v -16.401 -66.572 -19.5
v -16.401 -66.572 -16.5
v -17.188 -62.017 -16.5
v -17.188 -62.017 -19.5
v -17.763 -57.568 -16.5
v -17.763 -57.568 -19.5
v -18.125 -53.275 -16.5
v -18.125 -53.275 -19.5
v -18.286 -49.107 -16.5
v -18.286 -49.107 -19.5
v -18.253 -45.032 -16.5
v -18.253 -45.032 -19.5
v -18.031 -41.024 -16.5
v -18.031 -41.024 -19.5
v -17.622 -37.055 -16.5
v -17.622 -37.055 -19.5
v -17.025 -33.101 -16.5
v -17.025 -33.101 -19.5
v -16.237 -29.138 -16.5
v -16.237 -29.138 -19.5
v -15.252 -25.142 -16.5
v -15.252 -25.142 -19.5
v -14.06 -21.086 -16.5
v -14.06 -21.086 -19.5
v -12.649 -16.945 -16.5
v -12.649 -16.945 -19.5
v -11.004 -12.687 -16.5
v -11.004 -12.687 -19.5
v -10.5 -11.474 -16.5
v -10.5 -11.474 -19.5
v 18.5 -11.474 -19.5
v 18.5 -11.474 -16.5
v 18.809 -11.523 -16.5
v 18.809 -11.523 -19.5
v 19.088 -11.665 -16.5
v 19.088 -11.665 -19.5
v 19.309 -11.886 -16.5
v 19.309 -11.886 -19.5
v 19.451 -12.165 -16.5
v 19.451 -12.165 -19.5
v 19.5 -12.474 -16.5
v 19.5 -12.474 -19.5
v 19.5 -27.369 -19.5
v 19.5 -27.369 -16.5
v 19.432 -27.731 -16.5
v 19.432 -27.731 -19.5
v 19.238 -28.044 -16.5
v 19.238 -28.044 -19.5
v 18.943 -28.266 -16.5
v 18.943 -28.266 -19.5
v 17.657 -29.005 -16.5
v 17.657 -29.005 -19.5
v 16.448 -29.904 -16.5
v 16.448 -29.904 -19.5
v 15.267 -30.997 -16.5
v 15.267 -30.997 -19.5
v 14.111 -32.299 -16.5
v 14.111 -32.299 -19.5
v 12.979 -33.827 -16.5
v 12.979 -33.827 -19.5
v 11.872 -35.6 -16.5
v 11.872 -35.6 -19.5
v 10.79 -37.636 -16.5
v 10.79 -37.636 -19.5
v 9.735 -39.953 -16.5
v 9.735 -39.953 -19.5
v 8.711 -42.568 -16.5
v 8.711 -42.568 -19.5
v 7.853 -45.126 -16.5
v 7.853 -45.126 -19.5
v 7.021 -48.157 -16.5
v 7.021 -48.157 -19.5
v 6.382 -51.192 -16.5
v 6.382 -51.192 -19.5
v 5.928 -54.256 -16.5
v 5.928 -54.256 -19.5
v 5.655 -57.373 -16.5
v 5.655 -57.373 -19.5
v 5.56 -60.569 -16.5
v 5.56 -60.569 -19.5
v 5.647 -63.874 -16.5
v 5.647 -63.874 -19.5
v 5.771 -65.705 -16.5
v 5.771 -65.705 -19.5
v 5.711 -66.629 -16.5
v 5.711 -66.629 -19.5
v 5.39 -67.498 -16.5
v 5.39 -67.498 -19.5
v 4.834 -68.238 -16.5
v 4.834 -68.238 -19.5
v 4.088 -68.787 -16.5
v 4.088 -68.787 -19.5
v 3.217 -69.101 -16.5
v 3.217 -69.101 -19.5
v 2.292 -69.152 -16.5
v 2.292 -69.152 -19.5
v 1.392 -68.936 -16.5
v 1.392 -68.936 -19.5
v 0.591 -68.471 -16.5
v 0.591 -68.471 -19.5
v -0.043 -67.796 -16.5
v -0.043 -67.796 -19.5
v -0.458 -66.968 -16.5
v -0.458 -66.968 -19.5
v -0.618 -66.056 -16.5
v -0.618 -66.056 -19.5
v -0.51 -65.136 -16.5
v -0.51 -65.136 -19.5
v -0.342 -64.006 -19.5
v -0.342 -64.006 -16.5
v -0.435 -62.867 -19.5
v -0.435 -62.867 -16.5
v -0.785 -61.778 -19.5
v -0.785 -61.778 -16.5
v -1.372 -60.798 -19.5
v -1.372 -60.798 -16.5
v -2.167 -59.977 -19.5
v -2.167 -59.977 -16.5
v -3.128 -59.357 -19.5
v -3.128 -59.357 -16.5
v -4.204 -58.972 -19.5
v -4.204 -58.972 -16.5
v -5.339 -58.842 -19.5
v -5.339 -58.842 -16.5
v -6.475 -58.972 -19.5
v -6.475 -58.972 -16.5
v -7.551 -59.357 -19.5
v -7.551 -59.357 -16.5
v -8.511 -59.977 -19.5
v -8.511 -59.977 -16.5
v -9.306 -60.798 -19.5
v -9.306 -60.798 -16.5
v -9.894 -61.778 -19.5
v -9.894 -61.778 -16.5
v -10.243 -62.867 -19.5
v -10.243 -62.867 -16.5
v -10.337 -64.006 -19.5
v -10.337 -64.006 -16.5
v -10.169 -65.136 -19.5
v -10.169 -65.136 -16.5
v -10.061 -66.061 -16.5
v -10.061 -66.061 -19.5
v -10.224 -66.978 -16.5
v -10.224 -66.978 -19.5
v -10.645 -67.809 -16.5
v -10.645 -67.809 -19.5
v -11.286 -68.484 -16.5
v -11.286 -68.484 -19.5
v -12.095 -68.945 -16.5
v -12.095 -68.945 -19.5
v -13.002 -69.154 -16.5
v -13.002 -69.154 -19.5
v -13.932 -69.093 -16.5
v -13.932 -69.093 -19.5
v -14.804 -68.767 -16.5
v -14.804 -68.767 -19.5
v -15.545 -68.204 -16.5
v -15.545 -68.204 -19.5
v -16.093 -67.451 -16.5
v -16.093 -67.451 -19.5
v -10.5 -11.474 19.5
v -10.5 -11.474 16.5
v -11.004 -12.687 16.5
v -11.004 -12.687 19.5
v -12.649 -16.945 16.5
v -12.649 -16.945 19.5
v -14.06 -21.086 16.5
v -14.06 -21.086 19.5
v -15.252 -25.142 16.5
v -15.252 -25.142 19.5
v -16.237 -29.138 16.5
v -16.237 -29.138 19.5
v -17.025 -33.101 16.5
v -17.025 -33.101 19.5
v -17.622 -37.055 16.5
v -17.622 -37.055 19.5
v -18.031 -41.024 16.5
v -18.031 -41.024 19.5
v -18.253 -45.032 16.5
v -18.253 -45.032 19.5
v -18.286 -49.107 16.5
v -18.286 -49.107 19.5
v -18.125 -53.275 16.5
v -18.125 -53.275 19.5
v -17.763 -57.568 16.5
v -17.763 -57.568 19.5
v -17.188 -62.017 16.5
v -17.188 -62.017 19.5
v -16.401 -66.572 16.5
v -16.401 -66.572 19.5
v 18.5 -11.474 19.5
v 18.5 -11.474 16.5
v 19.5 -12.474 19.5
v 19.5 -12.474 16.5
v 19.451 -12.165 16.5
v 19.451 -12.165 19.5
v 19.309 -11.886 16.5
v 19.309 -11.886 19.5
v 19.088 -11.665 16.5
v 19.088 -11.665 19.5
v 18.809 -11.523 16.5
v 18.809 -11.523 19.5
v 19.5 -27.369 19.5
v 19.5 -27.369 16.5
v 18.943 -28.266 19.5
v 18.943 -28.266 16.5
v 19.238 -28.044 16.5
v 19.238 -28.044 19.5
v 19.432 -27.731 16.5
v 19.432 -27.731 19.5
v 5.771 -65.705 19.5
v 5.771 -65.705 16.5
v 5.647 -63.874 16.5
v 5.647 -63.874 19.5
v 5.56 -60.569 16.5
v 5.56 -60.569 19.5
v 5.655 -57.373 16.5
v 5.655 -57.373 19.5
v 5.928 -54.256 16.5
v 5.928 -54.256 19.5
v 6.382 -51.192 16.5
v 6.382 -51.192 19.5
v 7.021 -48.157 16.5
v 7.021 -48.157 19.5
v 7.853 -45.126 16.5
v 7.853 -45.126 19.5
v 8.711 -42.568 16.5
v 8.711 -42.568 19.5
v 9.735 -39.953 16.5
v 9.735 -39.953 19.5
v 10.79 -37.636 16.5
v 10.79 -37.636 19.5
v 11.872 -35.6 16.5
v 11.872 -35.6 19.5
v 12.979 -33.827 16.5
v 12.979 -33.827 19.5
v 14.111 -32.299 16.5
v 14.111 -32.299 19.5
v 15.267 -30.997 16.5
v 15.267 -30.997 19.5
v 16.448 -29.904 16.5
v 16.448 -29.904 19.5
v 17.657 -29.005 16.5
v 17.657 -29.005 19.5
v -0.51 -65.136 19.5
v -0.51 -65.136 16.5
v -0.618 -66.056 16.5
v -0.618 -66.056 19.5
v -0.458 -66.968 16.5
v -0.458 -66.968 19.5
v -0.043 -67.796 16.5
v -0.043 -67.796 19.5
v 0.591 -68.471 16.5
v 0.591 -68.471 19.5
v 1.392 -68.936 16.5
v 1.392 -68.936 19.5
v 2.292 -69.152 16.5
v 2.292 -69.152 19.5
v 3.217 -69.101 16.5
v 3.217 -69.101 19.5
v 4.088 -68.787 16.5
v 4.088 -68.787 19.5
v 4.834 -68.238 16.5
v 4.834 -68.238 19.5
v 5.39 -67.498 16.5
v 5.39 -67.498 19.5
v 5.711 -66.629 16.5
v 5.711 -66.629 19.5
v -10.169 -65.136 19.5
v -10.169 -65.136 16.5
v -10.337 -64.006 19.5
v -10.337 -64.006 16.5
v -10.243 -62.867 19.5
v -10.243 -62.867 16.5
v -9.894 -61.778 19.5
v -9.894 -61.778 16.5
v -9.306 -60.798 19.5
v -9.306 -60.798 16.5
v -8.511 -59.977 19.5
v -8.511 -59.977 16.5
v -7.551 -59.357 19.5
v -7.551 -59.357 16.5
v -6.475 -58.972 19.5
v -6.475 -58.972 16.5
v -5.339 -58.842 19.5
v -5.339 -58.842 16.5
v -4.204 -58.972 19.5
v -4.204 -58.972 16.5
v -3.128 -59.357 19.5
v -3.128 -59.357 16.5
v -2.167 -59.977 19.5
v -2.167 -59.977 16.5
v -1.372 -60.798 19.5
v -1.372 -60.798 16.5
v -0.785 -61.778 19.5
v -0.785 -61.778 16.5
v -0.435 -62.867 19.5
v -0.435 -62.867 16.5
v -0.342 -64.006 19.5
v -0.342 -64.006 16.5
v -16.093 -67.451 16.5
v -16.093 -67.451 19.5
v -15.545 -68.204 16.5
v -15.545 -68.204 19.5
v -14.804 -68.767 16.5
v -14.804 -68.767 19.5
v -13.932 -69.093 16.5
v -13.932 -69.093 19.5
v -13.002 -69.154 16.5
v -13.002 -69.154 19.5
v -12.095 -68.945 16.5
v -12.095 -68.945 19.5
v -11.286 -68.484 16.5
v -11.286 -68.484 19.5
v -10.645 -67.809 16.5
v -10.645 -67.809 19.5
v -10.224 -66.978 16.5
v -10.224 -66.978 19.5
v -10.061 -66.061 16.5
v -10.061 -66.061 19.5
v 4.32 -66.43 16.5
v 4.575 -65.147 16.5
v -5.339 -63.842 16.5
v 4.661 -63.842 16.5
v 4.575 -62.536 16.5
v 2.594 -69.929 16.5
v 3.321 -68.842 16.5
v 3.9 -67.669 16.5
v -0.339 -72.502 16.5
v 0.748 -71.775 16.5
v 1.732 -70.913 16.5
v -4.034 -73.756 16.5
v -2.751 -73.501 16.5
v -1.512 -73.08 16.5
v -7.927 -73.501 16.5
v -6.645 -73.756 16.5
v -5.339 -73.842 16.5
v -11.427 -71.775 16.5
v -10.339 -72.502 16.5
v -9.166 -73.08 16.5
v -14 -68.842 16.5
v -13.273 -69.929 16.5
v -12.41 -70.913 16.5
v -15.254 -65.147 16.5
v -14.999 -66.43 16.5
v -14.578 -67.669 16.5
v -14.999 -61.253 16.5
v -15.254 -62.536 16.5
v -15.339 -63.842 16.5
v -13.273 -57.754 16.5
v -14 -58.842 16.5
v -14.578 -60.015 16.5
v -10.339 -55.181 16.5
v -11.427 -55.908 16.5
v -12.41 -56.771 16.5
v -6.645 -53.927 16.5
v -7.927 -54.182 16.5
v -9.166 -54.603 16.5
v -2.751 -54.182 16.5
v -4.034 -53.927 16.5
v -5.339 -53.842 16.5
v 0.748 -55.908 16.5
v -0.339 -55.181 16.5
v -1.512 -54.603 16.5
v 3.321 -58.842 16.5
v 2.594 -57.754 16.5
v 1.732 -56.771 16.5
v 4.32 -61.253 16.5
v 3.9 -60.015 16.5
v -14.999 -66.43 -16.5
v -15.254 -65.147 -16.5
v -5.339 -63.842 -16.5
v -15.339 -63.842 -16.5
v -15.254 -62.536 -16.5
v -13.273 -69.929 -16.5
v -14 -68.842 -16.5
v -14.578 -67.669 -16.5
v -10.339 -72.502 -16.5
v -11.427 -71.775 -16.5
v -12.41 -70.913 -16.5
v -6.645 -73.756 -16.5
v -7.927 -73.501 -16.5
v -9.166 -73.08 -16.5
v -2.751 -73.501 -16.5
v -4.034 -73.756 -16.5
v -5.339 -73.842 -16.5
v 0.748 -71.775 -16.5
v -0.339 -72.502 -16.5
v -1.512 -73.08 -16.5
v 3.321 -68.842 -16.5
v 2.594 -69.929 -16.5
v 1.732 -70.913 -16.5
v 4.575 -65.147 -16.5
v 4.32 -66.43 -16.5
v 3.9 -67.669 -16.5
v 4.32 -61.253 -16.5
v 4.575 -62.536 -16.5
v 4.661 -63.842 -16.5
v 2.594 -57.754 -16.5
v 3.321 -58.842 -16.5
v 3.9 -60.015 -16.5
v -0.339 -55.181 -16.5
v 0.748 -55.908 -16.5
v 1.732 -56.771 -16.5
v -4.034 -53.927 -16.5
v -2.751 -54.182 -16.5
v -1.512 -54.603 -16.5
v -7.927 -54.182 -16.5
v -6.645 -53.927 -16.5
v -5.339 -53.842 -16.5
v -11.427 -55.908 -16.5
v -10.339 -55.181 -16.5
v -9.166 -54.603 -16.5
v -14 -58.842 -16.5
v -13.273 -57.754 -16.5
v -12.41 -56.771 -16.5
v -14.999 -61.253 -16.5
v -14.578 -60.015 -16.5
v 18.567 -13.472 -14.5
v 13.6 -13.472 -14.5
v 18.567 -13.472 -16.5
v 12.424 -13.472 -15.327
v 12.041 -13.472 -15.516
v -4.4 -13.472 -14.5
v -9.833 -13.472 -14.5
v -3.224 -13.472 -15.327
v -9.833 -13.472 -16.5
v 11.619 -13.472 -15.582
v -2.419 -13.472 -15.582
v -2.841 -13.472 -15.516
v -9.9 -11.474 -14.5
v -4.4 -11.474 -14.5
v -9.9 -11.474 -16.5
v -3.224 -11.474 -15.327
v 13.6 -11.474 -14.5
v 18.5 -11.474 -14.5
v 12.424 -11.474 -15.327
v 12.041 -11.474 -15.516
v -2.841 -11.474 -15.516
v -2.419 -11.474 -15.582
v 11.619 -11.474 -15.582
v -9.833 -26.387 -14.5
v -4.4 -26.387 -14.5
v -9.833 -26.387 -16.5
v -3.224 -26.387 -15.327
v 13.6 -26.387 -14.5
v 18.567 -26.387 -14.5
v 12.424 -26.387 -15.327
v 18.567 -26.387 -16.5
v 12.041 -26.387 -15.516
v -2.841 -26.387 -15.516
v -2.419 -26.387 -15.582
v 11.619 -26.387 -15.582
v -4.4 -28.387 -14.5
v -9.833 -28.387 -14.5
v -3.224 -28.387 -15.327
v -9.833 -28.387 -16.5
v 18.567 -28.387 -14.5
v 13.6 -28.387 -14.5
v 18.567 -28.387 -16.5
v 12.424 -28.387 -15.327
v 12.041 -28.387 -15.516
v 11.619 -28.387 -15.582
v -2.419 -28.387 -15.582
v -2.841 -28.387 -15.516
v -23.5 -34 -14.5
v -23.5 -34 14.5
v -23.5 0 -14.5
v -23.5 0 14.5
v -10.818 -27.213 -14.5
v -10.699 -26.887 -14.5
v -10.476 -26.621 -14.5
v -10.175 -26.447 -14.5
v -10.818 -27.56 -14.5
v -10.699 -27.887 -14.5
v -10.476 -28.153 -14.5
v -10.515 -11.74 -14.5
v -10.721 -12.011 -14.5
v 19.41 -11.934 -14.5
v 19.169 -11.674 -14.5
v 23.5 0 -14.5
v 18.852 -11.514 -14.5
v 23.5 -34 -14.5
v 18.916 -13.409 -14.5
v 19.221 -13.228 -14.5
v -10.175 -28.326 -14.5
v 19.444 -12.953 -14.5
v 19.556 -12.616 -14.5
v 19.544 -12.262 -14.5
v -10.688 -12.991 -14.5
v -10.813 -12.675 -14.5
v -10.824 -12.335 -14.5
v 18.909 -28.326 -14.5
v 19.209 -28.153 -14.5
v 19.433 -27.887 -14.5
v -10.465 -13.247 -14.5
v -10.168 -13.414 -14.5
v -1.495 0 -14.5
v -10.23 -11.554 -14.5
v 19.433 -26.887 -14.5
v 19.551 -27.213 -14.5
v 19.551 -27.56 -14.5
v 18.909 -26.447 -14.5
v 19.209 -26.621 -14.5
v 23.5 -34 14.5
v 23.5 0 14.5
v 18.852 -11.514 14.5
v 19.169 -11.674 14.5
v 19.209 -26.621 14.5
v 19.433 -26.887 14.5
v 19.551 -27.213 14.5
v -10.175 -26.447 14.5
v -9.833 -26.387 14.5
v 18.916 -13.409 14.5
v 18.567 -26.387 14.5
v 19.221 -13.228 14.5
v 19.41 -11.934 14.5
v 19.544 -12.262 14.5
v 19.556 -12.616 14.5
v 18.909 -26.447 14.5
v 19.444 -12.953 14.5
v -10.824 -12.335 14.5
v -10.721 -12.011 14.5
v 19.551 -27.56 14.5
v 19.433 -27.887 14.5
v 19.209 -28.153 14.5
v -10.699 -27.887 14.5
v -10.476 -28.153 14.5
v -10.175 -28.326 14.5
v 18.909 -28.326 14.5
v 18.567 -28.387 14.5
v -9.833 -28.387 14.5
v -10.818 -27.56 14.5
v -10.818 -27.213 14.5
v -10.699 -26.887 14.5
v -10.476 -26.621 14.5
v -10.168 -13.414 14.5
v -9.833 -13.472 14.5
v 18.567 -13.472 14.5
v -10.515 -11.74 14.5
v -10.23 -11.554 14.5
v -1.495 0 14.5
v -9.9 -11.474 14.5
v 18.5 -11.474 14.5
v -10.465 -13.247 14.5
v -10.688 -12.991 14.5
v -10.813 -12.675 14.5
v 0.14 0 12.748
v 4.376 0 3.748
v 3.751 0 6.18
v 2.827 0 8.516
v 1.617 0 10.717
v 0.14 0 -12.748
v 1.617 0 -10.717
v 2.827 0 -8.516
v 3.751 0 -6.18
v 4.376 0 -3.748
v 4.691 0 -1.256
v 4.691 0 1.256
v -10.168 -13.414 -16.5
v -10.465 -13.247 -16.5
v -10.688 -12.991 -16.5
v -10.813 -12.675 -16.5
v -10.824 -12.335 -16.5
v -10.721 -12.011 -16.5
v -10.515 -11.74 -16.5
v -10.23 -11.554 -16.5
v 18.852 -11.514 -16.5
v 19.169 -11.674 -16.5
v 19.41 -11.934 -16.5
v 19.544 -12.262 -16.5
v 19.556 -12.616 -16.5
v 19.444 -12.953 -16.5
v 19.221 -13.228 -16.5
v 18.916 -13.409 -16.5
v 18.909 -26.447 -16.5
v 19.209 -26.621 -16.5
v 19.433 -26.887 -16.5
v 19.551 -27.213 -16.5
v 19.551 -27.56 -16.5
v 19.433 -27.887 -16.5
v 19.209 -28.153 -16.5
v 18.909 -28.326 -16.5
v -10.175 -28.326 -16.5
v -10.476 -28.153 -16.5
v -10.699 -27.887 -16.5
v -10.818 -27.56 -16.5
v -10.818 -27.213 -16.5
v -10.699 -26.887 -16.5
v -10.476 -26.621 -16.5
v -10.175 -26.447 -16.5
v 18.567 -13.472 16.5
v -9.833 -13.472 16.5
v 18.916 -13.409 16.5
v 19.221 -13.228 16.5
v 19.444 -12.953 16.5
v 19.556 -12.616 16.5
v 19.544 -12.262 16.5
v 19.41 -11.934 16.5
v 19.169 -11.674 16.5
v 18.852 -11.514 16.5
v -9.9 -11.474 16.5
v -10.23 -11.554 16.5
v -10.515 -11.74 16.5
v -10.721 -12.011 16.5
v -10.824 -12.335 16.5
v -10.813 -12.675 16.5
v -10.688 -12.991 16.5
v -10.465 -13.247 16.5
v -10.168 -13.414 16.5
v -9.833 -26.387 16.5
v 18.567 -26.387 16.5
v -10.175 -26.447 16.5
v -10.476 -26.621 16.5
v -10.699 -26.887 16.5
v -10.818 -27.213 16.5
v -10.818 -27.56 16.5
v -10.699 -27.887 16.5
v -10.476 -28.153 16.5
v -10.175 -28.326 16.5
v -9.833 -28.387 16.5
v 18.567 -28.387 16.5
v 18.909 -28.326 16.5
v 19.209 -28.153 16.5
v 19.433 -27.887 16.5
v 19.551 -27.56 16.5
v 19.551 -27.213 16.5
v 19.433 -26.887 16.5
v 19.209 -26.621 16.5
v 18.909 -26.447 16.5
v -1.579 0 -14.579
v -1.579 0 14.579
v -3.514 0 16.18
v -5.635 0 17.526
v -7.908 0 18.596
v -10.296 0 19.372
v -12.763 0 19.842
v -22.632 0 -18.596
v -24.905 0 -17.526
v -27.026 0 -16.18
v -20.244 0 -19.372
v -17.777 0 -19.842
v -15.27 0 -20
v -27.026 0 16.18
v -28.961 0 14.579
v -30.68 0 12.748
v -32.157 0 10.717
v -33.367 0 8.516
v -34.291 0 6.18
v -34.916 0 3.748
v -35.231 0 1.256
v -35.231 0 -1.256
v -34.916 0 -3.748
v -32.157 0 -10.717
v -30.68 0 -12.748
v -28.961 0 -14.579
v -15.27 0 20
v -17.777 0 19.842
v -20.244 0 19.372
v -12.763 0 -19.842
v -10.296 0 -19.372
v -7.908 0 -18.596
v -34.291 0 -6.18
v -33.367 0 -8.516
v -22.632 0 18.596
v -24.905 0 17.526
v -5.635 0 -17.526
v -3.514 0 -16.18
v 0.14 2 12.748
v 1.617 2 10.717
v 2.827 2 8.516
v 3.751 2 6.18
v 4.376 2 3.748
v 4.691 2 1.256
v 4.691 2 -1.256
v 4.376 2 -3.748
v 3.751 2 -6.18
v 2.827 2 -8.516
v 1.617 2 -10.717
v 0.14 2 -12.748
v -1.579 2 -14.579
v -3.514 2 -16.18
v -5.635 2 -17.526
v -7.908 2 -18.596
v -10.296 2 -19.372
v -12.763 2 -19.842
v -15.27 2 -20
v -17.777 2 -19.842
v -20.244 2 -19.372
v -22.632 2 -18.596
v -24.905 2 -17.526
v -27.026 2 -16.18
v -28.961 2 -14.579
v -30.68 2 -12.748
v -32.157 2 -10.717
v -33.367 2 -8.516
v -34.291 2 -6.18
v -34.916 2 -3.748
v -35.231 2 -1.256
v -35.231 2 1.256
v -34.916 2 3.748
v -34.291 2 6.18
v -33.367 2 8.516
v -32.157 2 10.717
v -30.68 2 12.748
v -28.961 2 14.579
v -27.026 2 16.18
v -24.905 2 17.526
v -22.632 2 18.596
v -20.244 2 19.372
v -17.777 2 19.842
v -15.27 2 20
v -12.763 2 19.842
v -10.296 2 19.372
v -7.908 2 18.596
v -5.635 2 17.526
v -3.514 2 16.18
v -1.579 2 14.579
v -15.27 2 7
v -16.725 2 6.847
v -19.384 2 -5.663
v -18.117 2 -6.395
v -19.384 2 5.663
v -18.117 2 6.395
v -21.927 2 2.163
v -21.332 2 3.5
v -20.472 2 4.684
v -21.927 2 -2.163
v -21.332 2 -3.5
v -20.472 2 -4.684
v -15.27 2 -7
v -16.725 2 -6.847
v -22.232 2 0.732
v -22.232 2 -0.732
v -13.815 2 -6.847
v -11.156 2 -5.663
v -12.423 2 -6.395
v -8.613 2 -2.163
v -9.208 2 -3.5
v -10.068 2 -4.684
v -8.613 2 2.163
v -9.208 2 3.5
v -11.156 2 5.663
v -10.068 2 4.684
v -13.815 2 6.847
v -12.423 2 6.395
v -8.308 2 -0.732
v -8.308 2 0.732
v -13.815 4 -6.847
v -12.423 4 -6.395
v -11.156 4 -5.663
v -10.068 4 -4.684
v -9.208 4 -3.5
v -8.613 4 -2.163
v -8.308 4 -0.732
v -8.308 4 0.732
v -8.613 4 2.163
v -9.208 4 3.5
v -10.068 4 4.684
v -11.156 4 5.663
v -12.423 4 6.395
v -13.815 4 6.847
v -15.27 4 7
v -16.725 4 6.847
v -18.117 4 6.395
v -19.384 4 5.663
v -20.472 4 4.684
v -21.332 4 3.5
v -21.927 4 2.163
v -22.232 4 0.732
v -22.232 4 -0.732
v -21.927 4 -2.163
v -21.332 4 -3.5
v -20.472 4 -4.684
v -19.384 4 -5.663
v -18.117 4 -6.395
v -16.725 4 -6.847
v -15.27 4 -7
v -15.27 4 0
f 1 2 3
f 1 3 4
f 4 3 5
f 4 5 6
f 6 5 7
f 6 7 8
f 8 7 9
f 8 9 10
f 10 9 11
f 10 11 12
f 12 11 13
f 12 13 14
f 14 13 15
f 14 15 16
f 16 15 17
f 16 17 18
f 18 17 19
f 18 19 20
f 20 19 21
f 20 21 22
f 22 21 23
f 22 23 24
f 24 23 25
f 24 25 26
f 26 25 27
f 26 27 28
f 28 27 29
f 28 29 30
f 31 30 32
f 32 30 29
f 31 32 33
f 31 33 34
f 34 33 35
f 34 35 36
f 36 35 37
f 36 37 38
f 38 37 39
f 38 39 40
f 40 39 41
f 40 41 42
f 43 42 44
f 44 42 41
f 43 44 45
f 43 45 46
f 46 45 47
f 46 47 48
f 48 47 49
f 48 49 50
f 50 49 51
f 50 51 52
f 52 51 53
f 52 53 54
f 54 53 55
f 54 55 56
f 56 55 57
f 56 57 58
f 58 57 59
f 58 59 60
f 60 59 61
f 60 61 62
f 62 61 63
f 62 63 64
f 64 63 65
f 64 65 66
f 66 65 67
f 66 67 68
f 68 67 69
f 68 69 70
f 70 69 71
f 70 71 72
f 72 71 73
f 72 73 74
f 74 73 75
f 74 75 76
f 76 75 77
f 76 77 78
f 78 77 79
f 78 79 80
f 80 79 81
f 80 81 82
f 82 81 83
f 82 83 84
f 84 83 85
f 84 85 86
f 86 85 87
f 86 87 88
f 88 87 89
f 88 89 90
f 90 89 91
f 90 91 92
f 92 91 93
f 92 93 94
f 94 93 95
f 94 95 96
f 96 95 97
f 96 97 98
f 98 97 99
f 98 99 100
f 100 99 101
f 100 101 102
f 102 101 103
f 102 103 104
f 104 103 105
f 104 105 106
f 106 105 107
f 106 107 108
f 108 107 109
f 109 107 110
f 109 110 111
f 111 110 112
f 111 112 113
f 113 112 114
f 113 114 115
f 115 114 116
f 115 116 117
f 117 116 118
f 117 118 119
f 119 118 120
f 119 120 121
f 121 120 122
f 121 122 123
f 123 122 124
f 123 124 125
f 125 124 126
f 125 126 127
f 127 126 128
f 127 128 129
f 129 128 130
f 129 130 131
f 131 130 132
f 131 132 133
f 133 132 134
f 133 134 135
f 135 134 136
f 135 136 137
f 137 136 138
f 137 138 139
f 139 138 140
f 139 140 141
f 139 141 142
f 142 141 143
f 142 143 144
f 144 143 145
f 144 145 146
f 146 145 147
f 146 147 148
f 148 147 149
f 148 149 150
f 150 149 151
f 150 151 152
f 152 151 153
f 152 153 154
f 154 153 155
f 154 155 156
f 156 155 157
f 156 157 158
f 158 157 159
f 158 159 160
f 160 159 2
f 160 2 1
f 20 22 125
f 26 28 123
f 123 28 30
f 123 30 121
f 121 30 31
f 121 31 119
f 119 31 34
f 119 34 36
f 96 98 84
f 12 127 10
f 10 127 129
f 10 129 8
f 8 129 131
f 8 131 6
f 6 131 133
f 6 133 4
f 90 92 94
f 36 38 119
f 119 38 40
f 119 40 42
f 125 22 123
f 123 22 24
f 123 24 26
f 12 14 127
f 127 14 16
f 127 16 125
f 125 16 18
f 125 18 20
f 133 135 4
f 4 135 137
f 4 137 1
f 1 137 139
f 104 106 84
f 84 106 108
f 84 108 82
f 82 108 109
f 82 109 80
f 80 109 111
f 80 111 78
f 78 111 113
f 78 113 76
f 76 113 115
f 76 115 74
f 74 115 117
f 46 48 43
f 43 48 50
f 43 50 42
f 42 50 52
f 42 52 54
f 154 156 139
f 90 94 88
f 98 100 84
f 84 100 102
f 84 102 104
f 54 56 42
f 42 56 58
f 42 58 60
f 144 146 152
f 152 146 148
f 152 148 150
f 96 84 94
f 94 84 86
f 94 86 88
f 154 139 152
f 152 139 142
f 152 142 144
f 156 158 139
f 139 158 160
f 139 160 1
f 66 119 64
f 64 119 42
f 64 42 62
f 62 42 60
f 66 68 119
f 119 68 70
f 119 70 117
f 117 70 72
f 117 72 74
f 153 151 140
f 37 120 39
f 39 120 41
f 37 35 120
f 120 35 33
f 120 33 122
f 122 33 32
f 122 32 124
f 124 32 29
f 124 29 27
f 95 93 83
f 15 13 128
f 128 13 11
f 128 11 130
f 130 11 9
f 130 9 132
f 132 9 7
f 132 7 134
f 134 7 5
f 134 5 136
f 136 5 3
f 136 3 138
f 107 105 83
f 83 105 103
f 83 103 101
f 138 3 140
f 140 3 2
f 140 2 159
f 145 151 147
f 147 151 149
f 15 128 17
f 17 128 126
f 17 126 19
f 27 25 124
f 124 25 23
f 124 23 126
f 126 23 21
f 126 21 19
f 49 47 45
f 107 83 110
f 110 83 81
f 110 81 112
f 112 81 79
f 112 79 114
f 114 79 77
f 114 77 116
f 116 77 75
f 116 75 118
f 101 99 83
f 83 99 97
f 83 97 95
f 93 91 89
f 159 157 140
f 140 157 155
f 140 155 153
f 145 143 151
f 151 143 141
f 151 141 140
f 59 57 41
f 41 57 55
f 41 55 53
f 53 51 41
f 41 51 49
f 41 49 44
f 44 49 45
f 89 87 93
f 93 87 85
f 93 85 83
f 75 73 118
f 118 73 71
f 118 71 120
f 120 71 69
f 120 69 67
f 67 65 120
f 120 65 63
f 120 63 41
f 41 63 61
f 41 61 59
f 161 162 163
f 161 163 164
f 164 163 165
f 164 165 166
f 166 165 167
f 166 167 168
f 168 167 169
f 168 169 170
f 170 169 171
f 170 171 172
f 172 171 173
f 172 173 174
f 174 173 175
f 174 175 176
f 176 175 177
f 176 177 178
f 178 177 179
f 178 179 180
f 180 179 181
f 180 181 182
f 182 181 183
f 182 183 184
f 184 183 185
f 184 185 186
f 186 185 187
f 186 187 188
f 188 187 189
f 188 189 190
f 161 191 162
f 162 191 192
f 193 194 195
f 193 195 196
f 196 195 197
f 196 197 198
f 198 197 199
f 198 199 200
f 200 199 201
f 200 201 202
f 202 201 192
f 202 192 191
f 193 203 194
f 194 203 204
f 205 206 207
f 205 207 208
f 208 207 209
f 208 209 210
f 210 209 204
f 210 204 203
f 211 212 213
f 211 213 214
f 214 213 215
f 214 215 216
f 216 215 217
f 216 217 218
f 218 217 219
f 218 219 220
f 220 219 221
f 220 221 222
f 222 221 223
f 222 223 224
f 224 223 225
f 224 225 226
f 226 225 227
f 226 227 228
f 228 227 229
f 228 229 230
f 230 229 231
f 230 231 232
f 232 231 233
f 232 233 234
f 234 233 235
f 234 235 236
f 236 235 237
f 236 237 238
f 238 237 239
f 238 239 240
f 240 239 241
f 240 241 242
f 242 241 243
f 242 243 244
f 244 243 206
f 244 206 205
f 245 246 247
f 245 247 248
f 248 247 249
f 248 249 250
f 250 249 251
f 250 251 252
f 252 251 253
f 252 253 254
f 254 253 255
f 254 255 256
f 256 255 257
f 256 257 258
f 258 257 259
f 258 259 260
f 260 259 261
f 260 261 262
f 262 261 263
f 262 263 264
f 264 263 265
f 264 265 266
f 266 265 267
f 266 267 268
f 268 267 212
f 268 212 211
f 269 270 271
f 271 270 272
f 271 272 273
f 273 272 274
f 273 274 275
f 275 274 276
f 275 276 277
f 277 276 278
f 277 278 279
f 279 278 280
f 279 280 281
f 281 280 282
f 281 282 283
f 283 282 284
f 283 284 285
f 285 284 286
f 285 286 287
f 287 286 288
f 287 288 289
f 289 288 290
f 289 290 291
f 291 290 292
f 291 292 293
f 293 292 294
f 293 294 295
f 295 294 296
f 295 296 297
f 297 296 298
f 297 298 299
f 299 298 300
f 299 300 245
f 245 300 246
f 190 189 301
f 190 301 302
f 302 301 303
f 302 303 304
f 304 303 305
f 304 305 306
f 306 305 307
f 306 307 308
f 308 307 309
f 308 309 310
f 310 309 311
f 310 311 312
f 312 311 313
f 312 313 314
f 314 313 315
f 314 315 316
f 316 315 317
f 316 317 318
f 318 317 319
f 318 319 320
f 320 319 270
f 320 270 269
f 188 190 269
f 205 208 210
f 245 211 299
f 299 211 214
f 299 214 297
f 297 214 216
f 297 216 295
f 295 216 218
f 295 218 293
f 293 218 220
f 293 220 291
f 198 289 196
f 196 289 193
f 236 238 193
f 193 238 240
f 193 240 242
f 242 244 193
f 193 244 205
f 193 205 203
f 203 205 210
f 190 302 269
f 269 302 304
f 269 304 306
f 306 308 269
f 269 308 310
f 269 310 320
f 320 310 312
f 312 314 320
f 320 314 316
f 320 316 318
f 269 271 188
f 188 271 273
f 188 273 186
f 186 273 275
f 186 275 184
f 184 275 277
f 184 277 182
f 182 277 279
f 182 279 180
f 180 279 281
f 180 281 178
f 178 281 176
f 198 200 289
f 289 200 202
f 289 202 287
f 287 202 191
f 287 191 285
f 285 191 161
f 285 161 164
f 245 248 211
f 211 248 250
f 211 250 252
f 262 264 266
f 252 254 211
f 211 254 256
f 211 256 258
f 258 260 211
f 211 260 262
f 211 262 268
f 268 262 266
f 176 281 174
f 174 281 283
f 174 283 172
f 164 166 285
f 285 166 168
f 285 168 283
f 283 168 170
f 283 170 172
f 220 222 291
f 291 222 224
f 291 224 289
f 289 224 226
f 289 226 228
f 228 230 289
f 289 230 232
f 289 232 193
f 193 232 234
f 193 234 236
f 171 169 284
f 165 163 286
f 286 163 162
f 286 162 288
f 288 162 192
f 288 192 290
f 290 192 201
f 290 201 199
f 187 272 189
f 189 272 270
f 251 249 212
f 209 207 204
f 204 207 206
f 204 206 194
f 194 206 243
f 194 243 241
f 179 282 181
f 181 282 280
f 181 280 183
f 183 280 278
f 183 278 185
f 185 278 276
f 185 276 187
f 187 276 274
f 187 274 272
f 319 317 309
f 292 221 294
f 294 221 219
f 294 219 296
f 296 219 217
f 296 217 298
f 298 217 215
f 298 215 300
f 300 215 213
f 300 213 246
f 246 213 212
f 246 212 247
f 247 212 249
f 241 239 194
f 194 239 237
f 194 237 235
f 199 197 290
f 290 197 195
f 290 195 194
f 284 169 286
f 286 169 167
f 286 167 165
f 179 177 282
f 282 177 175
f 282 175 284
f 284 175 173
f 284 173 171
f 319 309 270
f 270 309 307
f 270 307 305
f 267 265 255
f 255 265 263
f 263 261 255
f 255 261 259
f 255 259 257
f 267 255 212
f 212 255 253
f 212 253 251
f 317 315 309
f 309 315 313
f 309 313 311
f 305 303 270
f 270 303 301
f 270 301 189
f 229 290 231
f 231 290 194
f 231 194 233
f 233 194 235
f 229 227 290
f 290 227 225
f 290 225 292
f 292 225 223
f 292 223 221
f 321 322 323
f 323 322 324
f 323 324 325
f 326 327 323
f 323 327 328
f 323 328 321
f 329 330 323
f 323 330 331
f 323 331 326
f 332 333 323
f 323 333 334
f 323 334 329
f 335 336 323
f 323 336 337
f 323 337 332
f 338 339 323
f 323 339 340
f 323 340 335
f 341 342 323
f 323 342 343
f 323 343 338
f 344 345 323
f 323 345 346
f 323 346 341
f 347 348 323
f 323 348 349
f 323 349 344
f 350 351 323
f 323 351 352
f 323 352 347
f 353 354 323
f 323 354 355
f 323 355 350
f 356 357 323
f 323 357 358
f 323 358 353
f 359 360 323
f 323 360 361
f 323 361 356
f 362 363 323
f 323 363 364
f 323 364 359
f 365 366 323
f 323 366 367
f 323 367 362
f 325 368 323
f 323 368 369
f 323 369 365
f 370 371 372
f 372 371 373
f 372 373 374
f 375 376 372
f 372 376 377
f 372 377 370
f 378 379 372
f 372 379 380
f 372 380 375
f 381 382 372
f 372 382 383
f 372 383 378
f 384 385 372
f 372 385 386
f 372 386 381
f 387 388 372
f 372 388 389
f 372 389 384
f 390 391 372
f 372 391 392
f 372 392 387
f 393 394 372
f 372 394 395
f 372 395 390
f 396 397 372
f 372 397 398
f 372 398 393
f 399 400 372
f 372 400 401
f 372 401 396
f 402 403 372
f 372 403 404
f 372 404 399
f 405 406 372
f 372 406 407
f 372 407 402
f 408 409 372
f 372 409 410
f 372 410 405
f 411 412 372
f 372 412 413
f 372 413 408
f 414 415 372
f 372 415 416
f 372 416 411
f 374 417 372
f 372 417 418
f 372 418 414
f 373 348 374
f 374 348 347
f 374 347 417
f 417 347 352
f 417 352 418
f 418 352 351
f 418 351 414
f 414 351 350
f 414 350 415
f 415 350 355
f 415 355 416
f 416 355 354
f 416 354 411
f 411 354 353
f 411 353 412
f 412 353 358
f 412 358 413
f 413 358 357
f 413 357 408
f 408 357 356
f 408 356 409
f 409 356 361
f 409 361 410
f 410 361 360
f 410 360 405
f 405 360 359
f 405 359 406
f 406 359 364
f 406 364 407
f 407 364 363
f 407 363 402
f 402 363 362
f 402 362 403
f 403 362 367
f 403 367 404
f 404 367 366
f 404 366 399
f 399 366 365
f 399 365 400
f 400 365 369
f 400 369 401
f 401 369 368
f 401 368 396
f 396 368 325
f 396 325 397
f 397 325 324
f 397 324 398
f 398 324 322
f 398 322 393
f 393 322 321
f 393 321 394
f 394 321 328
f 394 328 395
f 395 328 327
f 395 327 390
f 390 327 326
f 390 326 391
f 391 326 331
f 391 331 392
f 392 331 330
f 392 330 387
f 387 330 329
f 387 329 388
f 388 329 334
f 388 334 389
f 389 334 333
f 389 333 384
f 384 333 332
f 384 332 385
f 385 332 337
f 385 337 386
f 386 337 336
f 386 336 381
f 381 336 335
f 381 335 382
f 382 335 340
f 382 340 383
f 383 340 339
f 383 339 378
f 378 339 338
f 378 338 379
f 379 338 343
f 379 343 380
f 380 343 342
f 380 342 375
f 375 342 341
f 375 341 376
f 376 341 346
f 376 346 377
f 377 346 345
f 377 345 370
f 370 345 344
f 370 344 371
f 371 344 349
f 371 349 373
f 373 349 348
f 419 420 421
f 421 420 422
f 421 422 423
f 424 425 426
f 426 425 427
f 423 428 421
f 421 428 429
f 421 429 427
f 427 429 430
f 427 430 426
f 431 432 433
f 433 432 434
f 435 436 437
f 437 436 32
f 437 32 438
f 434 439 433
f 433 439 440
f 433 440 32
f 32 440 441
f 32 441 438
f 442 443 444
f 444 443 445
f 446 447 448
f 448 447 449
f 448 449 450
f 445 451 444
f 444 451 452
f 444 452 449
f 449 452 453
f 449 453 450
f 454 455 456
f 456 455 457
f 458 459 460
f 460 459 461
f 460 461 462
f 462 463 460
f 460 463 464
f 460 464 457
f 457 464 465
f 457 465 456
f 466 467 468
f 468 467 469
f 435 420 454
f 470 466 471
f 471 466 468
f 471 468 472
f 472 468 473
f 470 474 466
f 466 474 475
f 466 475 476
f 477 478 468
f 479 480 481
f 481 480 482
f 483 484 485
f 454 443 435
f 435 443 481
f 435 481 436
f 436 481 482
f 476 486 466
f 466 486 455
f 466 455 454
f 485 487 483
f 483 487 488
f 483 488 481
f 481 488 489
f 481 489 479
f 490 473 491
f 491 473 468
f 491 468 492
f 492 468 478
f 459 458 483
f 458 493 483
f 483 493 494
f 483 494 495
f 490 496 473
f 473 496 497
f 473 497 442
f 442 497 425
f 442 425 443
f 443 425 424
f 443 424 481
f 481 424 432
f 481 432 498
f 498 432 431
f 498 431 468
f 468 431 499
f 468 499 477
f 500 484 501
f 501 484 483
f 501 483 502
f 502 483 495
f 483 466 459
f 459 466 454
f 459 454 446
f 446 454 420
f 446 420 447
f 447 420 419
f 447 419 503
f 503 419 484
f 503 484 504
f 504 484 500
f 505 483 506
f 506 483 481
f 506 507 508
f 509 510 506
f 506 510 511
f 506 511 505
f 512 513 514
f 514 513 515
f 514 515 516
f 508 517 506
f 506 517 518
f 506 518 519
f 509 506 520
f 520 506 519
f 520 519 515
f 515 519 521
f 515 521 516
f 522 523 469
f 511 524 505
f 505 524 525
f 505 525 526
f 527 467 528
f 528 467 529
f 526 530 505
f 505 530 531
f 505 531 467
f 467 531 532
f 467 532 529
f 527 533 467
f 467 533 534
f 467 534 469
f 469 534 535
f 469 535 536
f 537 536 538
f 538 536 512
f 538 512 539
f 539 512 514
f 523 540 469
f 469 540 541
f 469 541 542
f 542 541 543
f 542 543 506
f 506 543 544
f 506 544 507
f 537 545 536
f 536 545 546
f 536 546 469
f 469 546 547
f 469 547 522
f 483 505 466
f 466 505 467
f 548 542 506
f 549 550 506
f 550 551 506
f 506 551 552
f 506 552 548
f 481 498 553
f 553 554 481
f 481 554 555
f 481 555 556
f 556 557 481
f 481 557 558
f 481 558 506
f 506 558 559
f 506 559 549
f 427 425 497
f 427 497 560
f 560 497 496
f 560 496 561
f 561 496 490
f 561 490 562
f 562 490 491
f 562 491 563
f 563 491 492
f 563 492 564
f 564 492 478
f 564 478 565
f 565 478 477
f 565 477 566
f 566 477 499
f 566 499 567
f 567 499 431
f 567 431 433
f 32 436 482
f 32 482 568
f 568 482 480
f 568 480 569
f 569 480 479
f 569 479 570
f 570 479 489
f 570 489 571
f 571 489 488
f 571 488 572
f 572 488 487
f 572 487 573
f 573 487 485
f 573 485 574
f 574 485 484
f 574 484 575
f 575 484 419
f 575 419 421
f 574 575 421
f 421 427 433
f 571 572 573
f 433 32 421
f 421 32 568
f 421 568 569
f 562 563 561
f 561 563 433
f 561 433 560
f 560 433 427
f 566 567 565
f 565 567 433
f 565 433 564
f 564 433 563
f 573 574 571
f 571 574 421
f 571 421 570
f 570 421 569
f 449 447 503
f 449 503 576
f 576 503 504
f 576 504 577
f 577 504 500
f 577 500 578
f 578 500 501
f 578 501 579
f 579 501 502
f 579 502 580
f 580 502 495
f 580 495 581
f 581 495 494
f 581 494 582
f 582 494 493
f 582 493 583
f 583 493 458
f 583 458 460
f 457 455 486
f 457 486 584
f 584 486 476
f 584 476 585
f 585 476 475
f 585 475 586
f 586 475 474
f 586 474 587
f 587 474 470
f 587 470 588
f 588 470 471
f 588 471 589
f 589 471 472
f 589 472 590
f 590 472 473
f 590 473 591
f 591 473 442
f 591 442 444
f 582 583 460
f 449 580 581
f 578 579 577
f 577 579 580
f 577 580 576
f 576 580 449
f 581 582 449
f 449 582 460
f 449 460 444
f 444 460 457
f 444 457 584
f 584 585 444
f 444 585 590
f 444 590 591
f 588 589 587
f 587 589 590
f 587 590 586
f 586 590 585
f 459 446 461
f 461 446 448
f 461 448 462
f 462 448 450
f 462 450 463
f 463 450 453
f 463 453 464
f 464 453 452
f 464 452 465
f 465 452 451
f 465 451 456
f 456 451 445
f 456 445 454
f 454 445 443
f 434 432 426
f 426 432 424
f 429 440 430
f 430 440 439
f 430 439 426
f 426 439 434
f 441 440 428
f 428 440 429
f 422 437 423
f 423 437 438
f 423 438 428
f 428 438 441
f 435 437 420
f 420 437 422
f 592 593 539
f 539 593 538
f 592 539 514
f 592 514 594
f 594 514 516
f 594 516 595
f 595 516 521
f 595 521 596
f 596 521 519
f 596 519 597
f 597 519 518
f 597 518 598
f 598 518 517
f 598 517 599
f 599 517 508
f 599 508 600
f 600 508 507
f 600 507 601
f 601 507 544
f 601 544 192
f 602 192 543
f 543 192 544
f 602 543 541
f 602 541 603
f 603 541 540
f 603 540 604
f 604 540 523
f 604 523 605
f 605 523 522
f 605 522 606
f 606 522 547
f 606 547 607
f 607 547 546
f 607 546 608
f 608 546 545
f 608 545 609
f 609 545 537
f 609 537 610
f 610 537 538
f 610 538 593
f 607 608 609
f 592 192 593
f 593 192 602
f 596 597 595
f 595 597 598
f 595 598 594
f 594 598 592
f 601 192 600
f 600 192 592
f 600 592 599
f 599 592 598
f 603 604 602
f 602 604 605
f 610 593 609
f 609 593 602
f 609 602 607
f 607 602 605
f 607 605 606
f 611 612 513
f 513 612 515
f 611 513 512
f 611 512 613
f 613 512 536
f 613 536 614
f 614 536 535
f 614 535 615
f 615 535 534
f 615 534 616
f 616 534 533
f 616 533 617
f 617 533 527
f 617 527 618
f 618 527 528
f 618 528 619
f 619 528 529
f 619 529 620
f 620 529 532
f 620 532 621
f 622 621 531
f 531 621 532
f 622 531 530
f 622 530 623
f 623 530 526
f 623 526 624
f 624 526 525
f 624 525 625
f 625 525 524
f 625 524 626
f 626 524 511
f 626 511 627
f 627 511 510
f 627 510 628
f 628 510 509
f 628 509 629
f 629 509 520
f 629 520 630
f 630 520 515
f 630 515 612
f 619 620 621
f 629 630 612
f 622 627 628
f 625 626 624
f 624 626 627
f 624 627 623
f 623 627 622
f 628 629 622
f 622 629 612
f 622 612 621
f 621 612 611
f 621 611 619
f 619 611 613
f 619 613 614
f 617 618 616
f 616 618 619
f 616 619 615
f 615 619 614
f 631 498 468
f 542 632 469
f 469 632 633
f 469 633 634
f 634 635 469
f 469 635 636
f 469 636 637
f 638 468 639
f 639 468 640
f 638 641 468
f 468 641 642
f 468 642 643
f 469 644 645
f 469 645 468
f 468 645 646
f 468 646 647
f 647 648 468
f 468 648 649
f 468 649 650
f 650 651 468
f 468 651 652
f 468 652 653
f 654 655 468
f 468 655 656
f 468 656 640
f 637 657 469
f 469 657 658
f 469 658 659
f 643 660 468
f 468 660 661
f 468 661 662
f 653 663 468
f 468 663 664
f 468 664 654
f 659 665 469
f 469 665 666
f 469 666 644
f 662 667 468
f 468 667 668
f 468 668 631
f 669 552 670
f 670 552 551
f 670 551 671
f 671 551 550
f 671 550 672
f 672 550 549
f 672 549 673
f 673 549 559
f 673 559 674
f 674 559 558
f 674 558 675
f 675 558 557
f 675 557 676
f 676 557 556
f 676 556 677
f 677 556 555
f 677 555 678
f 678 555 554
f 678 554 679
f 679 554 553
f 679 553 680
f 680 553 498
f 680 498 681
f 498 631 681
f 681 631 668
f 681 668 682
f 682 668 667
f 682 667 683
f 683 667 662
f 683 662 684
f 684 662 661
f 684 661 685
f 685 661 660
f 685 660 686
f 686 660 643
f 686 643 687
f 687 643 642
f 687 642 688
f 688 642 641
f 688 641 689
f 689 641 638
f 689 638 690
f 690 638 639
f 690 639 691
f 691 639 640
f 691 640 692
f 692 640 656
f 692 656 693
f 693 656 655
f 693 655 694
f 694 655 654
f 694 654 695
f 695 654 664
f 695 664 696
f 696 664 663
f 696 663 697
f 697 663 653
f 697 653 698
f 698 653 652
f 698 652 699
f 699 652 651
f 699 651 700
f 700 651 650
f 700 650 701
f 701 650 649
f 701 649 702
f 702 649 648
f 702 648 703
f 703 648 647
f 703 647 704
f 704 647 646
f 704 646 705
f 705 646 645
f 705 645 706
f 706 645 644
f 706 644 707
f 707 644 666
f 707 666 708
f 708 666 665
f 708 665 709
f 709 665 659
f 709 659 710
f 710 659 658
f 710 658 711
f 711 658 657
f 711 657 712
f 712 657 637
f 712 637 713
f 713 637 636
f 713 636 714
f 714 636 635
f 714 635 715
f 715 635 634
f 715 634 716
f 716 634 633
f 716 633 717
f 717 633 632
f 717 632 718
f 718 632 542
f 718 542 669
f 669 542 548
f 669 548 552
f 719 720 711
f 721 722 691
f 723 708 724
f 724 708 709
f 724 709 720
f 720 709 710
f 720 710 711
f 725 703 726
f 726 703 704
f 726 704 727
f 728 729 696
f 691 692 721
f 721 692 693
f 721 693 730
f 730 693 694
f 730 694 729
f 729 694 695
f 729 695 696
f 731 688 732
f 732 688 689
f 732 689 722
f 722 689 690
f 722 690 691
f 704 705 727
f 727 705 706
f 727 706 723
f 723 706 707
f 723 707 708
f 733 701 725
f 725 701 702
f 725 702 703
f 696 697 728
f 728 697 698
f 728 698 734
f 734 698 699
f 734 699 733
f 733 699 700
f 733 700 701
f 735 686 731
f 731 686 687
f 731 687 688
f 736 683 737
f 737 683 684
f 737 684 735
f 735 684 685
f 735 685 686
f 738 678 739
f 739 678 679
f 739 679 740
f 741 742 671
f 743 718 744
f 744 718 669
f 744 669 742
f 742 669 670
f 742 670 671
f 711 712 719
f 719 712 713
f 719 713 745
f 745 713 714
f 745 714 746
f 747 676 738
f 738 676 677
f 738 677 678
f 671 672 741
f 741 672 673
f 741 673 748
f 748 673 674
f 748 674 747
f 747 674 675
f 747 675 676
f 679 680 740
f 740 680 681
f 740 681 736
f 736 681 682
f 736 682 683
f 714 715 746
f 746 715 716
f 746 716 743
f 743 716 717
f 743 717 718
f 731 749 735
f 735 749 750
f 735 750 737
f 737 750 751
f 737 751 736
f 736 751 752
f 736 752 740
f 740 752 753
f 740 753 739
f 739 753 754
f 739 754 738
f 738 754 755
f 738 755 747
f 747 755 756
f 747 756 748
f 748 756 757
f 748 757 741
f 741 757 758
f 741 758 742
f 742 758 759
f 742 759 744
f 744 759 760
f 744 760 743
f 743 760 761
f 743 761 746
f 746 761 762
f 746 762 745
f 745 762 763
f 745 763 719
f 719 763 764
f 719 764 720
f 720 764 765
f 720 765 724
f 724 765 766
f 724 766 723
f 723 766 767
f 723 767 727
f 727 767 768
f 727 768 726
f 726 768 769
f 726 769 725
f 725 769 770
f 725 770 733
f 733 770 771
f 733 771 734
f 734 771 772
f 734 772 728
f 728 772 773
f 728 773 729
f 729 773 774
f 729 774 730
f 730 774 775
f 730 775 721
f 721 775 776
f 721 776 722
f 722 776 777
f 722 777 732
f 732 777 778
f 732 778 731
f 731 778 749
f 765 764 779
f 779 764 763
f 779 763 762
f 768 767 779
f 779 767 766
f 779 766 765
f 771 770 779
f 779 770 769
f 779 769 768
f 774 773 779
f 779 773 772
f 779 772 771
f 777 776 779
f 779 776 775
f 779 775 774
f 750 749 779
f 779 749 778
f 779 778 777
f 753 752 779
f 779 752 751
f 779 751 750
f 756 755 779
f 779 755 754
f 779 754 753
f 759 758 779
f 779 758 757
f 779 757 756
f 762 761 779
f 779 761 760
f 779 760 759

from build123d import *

# Parameters (mm, degrees)
SKETCH1_W           = 47
SKETCH1_H           = 29
BOSS_EXTRUDE1_DEPTH = 34
BOSS_EXTRUDE2_START = 2
BOSS_EXTRUDE2_DEPTH = 3
BOSS_EXTRUDE3_DEPTH = 2
CUT_EXTRUDE1_DEPTH  = 66.273998936
BOSS_EXTRUDE4_START = -3
SKETCH5_R           = 10
BOSS_EXTRUDE4_DEPTH = 33
SKETCH6_R           = 20
BOSS_EXTRUDE5_DEPTH = 2
SKETCH7_R           = 7
BOSS_EXTRUDE6_DEPTH = 2


with BuildPart() as part:
    # Sketch1 → Boss-Extrude1 (new body)
    with BuildSketch(Plane(origin=(0, 0, 0), x_dir=(1, 0, 0), z_dir=(0, 1, 0))):
        Rectangle(SKETCH1_W, SKETCH1_H)
    extrude(amount=-BOSS_EXTRUDE1_DEPTH)

    # Sketch3 → Boss-Extrude3 (add)
    with BuildSketch(Plane(origin=(0, 0, -14.5), x_dir=(-1, 0, 0), z_dir=(0, 0, -1))):
        with BuildLine():
            Line((9.9, -11.474148425), (-18.5, -11.474148425))
            ThreePointArc((-18.5, -11.474148425), (-19.566030524, -12.438617913), (-18.566585497, -13.471929148))
            Line((-18.566585497, -13.471929148), (9.833414503, -13.471929148))
            ThreePointArc((9.833414503, -13.471929148), (10.83285953, -12.505240384), (9.9, -11.474148425))
        make_face()
        with BuildLine():
            Line((-18.566585497, -28.386799147), (9.833414503, -28.386799147))
            ThreePointArc((9.833414503, -28.386799147), (10.833414503, -27.386799147), (9.833414503, -26.386799147))
            Line((9.833414503, -26.386799147), (-18.566585497, -26.386799147))
            ThreePointArc((-18.566585497, -26.386799147), (-19.566585497, -27.386799147), (-18.566585497, -28.386799147))
        make_face()
    boss_extrude3 = extrude(amount=BOSS_EXTRUDE3_DEPTH)

    # Sketch4 → Cut-Extrude1 (cut, through all)
    with BuildSketch(Plane(origin=(0, -11.474148425, 0), x_dir=(1, 0, 0), z_dir=(0, 1, 0))):
        with BuildLine():
            Line((-2.418528857, 15.581579117), (11.618528857, 15.581579117))
            ThreePointArc((11.618528857, 15.581579117), (12.040741284, 15.516396208), (12.423637948, 15.326917211))
            Line((12.423637948, 15.326917211), (13.6, 14.5))
            Line((13.6, 14.5), (-4.4, 14.5))
            Line((-4.4, 14.5), (-3.223637948, 15.326917211))
            ThreePointArc((-3.223637948, 15.326917211), (-2.840741284, 15.516396208), (-2.418528857, 15.581579117))
        make_face()
    extrude(amount=-CUT_EXTRUDE1_DEPTH, mode=Mode.SUBTRACT)

    # Mirror4: Boss-Extrude3 across plane
    add(boss_extrude3.mirror(Plane.XY))

    # Sketch6 → Boss-Extrude5 (add)
    with BuildSketch(Plane(origin=(0, 0, 0), x_dir=(1, 0, 0), z_dir=(0, 1, 0))):
        with Locations(Location((-15.27, 0, 0), (0, 0, 46.468847833))):
            Circle(SKETCH6_R)
    extrude(amount=BOSS_EXTRUDE5_DEPTH)

    # Sketch7 → Boss-Extrude6 (add)
    with BuildSketch(Plane(origin=(0, 2, 0), x_dir=(1, 0, 0), z_dir=(0, 1, 0))):
        with Locations(Location((-15.27, 0, 0), (0, 0, 270))):
            Circle(SKETCH7_R)
    extrude(amount=BOSS_EXTRUDE6_DEPTH)


with BuildPart() as body_2:
    # Sketch2 → Boss-Extrude2 (new body)
    with BuildSketch(Plane(origin=(0, 0, -14.5), x_dir=(-1, 0, 0), z_dir=(0, 0, -1)).offset(BOSS_EXTRUDE2_START)):
        with BuildLine():
            Line((-18.5, -11.474148425), (10.5, -11.474148425))
            add(Edge.make_bspline(
                [(10.5, -11.474148425), (18.34379495, -30.085994321), (20.184872836, -47.014188136), (16.401438499, -66.572414203)],
                knots=[0, 0, 0, 0, 1, 1, 1, 1], degree=3))
            ThreePointArc((16.401438499, -66.572414203), (12.541115786, -69.082936974), (10.168788044, -65.136181709))
            ThreePointArc((10.168788044, -65.136181709), (5.339265933, -58.841687144), (0.509743822, -65.136181709))
            ThreePointArc((0.509743822, -65.136181709), (-2.292431696, -69.151606858), (-5.770609942, -65.70514449))
            add(Edge.make_bspline(
                [(-18.942985728, -28.265754136), (-14.351246375, -30.534588452), (-6.816589683, -43.814775737), (-5.064114447, -57.022217569), (-5.770609942, -65.70514449)],
                knots=[0.029970627, 0.029970627, 0.029970627, 0.029970627, 0.417815731, 1, 1, 1, 1], degree=3))
            ThreePointArc((-18.942985728, -28.265754136), (-19.34940736, -27.896963225), (-19.5, -27.369225472))
            Line((-19.5, -27.369225472), (-19.5, -12.474148425))
            ThreePointArc((-19.5, -12.474148425), (-19.207106781, -11.767041644), (-18.5, -11.474148425))
        make_face()
    extrude(amount=BOSS_EXTRUDE2_DEPTH)


with BuildPart() as body_3:
    # Mirror5: mirrored copy
    add(body_2.part.mirror(Plane.XY))


with BuildPart() as body_4:
    # Sketch5 → Boss-Extrude4 (new body)
    with BuildSketch(Plane(origin=(0, 0, -19.5), x_dir=(-1, 0, 0), z_dir=(0, 0, -1)).offset(BOSS_EXTRUDE4_START)):
        with Locations((5.339265933, -63.841687144)):
            Circle(SKETCH5_R)
    extrude(amount=-BOSS_EXTRUDE4_DEPTH)


solid = Compound([part.part, body_2.part, body_3.part, body_4.part])
